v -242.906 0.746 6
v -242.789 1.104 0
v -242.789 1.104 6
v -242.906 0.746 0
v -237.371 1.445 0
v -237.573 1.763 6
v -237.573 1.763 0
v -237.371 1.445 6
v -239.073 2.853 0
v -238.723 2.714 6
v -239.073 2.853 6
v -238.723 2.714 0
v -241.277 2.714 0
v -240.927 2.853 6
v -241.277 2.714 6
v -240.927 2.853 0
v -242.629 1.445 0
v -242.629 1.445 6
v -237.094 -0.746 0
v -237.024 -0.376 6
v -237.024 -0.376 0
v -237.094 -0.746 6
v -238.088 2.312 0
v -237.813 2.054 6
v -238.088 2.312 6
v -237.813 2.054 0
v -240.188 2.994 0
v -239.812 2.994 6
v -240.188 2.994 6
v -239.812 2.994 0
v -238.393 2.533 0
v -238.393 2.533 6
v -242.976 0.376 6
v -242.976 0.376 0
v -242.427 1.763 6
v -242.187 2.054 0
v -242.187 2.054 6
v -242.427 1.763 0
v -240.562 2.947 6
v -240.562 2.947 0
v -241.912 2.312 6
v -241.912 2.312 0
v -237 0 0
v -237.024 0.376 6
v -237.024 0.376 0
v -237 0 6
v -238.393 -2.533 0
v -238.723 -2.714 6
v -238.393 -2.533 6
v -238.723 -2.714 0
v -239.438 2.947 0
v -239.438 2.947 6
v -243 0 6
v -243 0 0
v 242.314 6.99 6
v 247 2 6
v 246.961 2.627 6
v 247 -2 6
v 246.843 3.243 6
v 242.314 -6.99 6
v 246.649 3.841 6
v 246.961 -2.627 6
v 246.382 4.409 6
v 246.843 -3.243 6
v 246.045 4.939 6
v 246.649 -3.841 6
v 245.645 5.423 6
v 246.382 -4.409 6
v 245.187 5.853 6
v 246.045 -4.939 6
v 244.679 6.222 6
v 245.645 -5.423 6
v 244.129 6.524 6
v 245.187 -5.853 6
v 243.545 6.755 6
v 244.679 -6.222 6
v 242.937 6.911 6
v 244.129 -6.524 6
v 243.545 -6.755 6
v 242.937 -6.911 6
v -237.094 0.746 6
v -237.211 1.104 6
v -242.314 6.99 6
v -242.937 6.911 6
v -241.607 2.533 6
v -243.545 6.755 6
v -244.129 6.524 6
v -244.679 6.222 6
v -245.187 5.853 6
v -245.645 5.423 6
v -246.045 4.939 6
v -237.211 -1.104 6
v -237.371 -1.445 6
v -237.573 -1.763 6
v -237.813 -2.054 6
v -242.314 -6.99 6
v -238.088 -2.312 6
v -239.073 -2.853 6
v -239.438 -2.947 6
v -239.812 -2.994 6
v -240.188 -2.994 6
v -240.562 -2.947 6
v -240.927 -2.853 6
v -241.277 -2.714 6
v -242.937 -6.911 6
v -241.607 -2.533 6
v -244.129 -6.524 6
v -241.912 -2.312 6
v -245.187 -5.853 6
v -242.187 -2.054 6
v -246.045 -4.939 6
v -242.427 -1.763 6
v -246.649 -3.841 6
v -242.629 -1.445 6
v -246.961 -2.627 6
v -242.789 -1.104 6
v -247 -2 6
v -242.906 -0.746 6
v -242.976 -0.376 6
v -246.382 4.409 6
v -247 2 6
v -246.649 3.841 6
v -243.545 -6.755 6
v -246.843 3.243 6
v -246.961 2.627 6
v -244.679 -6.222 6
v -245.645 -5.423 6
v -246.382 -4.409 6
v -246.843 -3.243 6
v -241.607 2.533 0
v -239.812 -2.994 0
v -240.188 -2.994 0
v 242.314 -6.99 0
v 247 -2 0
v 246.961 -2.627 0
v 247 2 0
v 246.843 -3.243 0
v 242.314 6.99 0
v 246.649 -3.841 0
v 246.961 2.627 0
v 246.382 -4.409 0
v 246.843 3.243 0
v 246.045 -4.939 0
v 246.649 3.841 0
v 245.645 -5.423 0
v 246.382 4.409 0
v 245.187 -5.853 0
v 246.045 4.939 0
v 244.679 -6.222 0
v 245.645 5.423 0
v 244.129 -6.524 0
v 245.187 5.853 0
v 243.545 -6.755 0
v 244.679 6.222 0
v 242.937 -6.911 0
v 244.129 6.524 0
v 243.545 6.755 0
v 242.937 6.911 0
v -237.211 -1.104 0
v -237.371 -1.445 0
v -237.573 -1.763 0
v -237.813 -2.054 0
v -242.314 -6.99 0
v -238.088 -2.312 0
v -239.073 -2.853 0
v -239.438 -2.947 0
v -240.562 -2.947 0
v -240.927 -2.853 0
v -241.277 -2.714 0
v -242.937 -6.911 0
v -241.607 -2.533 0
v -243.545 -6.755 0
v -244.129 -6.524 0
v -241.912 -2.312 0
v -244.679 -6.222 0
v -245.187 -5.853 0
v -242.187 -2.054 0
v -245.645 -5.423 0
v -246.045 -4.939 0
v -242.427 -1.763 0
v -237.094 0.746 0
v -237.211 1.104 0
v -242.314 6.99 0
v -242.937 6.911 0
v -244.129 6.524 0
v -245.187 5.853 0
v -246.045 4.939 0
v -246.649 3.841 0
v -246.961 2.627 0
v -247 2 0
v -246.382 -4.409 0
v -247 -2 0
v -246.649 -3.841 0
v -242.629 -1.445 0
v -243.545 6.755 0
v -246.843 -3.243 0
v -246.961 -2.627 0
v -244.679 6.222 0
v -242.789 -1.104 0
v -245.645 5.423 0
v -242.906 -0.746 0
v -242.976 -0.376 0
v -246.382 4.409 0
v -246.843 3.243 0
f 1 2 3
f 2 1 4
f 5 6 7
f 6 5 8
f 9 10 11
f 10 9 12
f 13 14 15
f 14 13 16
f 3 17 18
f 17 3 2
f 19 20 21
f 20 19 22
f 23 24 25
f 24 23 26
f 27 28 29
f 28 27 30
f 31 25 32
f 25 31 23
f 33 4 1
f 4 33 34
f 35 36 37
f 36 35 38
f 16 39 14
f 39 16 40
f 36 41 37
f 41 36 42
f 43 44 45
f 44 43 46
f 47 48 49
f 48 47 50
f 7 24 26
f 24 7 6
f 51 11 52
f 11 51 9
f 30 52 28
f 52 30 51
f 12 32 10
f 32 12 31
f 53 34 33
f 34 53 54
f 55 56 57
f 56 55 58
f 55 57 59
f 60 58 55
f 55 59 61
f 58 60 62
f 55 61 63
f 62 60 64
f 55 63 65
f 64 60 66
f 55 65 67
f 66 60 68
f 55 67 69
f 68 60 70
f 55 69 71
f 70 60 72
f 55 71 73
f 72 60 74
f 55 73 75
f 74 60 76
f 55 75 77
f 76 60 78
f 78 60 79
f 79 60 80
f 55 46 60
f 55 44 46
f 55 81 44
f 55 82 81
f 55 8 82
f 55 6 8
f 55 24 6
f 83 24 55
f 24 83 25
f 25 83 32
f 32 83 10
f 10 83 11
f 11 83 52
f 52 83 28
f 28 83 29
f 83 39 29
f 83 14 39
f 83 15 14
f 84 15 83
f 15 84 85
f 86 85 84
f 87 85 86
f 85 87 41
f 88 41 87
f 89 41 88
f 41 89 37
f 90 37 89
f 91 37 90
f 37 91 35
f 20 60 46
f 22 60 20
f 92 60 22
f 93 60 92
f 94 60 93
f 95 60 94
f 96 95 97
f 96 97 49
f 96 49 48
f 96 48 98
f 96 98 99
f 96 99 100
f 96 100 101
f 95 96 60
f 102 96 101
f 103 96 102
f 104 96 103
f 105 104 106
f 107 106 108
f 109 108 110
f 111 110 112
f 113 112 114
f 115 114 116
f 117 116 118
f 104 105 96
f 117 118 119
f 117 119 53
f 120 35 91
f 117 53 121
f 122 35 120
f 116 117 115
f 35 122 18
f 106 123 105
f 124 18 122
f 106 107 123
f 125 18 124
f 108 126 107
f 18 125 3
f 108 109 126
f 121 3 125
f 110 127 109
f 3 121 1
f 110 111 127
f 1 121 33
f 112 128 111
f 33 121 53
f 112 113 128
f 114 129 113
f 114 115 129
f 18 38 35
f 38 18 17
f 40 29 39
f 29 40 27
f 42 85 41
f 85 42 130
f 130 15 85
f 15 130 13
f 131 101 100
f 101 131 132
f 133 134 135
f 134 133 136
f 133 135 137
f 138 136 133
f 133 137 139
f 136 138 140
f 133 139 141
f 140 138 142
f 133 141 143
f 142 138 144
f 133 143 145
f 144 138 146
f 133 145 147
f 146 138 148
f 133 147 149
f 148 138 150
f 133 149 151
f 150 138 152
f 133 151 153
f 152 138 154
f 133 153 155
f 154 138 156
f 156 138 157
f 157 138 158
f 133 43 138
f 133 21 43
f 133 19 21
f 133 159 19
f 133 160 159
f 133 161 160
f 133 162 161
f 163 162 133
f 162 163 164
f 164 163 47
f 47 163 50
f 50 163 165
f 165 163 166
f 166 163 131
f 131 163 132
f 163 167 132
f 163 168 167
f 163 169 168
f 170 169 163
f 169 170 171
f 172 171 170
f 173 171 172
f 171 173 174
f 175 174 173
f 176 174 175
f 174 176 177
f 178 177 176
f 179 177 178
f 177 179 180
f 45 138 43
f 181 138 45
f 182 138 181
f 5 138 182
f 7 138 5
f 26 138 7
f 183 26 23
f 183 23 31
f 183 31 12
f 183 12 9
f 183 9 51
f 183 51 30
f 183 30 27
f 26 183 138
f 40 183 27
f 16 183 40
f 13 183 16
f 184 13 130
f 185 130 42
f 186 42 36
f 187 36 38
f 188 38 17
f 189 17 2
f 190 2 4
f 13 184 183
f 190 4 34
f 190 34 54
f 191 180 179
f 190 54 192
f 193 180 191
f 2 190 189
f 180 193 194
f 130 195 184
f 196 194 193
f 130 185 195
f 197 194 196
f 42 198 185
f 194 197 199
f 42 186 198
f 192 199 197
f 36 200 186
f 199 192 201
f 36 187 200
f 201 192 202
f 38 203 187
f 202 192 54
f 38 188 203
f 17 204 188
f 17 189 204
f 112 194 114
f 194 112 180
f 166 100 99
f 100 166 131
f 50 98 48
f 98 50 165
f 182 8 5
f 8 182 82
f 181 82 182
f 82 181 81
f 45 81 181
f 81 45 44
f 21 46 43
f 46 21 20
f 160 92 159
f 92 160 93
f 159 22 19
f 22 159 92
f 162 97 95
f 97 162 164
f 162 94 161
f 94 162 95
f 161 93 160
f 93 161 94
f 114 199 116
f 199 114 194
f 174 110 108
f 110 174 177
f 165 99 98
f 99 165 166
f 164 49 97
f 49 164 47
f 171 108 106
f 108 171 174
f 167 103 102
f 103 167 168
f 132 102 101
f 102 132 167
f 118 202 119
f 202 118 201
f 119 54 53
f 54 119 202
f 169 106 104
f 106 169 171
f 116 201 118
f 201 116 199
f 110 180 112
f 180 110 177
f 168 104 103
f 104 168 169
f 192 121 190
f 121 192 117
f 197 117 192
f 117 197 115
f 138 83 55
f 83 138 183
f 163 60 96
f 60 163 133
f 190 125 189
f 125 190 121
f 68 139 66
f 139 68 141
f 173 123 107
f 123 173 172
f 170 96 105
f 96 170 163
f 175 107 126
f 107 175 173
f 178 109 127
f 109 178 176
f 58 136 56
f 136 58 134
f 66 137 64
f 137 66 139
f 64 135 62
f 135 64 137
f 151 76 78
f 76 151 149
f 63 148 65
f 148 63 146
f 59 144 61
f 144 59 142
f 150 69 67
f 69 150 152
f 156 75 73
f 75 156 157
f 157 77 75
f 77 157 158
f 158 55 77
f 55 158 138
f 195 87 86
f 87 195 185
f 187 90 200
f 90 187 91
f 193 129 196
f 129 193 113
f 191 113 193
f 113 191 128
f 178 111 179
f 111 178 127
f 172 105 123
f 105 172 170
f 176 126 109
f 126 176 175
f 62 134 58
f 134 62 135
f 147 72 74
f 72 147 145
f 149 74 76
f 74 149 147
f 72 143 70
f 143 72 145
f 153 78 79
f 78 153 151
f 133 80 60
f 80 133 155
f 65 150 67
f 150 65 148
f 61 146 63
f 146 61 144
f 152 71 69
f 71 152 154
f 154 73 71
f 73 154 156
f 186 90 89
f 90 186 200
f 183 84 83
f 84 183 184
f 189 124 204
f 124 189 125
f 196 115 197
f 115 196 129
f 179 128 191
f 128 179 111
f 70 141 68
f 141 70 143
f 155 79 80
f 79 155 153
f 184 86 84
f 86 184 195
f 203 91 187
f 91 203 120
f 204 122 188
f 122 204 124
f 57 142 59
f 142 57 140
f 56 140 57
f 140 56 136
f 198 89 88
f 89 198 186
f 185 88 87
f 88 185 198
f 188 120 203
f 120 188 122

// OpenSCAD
$fn = 50;


difference() {
	union() {
		hull() {
			translate(v = [-242.0000000000, 2.0000000000, 0]) {
				cylinder(h = 6, r = 5);
			}
			translate(v = [242.0000000000, 2.0000000000, 0]) {
				cylinder(h = 6, r = 5);
			}
			translate(v = [-242.0000000000, -2.0000000000, 0]) {
				cylinder(h = 6, r = 5);
			}
			translate(v = [242.0000000000, -2.0000000000, 0]) {
				cylinder(h = 6, r = 5);
			}
		}
	}
	union() {
		translate(v = [-240.0000000000, 0.0000000000, 0]) {
			cylinder(h = 6, r = 3.0000000000);
		}
		translate(v = [-240.0000000000, 0.0000000000, 0]) {
			cylinder(h = 6, r = 1.5000000000);
		}
		translate(v = [-240.0000000000, 0.0000000000, 0]) {
			cylinder(h = 6, r = 1.5000000000);
		}
		translate(v = [-240.0000000000, 0.0000000000, 0]) {
			cylinder(h = 6, r = 1.5000000000);
		}
	}
}
